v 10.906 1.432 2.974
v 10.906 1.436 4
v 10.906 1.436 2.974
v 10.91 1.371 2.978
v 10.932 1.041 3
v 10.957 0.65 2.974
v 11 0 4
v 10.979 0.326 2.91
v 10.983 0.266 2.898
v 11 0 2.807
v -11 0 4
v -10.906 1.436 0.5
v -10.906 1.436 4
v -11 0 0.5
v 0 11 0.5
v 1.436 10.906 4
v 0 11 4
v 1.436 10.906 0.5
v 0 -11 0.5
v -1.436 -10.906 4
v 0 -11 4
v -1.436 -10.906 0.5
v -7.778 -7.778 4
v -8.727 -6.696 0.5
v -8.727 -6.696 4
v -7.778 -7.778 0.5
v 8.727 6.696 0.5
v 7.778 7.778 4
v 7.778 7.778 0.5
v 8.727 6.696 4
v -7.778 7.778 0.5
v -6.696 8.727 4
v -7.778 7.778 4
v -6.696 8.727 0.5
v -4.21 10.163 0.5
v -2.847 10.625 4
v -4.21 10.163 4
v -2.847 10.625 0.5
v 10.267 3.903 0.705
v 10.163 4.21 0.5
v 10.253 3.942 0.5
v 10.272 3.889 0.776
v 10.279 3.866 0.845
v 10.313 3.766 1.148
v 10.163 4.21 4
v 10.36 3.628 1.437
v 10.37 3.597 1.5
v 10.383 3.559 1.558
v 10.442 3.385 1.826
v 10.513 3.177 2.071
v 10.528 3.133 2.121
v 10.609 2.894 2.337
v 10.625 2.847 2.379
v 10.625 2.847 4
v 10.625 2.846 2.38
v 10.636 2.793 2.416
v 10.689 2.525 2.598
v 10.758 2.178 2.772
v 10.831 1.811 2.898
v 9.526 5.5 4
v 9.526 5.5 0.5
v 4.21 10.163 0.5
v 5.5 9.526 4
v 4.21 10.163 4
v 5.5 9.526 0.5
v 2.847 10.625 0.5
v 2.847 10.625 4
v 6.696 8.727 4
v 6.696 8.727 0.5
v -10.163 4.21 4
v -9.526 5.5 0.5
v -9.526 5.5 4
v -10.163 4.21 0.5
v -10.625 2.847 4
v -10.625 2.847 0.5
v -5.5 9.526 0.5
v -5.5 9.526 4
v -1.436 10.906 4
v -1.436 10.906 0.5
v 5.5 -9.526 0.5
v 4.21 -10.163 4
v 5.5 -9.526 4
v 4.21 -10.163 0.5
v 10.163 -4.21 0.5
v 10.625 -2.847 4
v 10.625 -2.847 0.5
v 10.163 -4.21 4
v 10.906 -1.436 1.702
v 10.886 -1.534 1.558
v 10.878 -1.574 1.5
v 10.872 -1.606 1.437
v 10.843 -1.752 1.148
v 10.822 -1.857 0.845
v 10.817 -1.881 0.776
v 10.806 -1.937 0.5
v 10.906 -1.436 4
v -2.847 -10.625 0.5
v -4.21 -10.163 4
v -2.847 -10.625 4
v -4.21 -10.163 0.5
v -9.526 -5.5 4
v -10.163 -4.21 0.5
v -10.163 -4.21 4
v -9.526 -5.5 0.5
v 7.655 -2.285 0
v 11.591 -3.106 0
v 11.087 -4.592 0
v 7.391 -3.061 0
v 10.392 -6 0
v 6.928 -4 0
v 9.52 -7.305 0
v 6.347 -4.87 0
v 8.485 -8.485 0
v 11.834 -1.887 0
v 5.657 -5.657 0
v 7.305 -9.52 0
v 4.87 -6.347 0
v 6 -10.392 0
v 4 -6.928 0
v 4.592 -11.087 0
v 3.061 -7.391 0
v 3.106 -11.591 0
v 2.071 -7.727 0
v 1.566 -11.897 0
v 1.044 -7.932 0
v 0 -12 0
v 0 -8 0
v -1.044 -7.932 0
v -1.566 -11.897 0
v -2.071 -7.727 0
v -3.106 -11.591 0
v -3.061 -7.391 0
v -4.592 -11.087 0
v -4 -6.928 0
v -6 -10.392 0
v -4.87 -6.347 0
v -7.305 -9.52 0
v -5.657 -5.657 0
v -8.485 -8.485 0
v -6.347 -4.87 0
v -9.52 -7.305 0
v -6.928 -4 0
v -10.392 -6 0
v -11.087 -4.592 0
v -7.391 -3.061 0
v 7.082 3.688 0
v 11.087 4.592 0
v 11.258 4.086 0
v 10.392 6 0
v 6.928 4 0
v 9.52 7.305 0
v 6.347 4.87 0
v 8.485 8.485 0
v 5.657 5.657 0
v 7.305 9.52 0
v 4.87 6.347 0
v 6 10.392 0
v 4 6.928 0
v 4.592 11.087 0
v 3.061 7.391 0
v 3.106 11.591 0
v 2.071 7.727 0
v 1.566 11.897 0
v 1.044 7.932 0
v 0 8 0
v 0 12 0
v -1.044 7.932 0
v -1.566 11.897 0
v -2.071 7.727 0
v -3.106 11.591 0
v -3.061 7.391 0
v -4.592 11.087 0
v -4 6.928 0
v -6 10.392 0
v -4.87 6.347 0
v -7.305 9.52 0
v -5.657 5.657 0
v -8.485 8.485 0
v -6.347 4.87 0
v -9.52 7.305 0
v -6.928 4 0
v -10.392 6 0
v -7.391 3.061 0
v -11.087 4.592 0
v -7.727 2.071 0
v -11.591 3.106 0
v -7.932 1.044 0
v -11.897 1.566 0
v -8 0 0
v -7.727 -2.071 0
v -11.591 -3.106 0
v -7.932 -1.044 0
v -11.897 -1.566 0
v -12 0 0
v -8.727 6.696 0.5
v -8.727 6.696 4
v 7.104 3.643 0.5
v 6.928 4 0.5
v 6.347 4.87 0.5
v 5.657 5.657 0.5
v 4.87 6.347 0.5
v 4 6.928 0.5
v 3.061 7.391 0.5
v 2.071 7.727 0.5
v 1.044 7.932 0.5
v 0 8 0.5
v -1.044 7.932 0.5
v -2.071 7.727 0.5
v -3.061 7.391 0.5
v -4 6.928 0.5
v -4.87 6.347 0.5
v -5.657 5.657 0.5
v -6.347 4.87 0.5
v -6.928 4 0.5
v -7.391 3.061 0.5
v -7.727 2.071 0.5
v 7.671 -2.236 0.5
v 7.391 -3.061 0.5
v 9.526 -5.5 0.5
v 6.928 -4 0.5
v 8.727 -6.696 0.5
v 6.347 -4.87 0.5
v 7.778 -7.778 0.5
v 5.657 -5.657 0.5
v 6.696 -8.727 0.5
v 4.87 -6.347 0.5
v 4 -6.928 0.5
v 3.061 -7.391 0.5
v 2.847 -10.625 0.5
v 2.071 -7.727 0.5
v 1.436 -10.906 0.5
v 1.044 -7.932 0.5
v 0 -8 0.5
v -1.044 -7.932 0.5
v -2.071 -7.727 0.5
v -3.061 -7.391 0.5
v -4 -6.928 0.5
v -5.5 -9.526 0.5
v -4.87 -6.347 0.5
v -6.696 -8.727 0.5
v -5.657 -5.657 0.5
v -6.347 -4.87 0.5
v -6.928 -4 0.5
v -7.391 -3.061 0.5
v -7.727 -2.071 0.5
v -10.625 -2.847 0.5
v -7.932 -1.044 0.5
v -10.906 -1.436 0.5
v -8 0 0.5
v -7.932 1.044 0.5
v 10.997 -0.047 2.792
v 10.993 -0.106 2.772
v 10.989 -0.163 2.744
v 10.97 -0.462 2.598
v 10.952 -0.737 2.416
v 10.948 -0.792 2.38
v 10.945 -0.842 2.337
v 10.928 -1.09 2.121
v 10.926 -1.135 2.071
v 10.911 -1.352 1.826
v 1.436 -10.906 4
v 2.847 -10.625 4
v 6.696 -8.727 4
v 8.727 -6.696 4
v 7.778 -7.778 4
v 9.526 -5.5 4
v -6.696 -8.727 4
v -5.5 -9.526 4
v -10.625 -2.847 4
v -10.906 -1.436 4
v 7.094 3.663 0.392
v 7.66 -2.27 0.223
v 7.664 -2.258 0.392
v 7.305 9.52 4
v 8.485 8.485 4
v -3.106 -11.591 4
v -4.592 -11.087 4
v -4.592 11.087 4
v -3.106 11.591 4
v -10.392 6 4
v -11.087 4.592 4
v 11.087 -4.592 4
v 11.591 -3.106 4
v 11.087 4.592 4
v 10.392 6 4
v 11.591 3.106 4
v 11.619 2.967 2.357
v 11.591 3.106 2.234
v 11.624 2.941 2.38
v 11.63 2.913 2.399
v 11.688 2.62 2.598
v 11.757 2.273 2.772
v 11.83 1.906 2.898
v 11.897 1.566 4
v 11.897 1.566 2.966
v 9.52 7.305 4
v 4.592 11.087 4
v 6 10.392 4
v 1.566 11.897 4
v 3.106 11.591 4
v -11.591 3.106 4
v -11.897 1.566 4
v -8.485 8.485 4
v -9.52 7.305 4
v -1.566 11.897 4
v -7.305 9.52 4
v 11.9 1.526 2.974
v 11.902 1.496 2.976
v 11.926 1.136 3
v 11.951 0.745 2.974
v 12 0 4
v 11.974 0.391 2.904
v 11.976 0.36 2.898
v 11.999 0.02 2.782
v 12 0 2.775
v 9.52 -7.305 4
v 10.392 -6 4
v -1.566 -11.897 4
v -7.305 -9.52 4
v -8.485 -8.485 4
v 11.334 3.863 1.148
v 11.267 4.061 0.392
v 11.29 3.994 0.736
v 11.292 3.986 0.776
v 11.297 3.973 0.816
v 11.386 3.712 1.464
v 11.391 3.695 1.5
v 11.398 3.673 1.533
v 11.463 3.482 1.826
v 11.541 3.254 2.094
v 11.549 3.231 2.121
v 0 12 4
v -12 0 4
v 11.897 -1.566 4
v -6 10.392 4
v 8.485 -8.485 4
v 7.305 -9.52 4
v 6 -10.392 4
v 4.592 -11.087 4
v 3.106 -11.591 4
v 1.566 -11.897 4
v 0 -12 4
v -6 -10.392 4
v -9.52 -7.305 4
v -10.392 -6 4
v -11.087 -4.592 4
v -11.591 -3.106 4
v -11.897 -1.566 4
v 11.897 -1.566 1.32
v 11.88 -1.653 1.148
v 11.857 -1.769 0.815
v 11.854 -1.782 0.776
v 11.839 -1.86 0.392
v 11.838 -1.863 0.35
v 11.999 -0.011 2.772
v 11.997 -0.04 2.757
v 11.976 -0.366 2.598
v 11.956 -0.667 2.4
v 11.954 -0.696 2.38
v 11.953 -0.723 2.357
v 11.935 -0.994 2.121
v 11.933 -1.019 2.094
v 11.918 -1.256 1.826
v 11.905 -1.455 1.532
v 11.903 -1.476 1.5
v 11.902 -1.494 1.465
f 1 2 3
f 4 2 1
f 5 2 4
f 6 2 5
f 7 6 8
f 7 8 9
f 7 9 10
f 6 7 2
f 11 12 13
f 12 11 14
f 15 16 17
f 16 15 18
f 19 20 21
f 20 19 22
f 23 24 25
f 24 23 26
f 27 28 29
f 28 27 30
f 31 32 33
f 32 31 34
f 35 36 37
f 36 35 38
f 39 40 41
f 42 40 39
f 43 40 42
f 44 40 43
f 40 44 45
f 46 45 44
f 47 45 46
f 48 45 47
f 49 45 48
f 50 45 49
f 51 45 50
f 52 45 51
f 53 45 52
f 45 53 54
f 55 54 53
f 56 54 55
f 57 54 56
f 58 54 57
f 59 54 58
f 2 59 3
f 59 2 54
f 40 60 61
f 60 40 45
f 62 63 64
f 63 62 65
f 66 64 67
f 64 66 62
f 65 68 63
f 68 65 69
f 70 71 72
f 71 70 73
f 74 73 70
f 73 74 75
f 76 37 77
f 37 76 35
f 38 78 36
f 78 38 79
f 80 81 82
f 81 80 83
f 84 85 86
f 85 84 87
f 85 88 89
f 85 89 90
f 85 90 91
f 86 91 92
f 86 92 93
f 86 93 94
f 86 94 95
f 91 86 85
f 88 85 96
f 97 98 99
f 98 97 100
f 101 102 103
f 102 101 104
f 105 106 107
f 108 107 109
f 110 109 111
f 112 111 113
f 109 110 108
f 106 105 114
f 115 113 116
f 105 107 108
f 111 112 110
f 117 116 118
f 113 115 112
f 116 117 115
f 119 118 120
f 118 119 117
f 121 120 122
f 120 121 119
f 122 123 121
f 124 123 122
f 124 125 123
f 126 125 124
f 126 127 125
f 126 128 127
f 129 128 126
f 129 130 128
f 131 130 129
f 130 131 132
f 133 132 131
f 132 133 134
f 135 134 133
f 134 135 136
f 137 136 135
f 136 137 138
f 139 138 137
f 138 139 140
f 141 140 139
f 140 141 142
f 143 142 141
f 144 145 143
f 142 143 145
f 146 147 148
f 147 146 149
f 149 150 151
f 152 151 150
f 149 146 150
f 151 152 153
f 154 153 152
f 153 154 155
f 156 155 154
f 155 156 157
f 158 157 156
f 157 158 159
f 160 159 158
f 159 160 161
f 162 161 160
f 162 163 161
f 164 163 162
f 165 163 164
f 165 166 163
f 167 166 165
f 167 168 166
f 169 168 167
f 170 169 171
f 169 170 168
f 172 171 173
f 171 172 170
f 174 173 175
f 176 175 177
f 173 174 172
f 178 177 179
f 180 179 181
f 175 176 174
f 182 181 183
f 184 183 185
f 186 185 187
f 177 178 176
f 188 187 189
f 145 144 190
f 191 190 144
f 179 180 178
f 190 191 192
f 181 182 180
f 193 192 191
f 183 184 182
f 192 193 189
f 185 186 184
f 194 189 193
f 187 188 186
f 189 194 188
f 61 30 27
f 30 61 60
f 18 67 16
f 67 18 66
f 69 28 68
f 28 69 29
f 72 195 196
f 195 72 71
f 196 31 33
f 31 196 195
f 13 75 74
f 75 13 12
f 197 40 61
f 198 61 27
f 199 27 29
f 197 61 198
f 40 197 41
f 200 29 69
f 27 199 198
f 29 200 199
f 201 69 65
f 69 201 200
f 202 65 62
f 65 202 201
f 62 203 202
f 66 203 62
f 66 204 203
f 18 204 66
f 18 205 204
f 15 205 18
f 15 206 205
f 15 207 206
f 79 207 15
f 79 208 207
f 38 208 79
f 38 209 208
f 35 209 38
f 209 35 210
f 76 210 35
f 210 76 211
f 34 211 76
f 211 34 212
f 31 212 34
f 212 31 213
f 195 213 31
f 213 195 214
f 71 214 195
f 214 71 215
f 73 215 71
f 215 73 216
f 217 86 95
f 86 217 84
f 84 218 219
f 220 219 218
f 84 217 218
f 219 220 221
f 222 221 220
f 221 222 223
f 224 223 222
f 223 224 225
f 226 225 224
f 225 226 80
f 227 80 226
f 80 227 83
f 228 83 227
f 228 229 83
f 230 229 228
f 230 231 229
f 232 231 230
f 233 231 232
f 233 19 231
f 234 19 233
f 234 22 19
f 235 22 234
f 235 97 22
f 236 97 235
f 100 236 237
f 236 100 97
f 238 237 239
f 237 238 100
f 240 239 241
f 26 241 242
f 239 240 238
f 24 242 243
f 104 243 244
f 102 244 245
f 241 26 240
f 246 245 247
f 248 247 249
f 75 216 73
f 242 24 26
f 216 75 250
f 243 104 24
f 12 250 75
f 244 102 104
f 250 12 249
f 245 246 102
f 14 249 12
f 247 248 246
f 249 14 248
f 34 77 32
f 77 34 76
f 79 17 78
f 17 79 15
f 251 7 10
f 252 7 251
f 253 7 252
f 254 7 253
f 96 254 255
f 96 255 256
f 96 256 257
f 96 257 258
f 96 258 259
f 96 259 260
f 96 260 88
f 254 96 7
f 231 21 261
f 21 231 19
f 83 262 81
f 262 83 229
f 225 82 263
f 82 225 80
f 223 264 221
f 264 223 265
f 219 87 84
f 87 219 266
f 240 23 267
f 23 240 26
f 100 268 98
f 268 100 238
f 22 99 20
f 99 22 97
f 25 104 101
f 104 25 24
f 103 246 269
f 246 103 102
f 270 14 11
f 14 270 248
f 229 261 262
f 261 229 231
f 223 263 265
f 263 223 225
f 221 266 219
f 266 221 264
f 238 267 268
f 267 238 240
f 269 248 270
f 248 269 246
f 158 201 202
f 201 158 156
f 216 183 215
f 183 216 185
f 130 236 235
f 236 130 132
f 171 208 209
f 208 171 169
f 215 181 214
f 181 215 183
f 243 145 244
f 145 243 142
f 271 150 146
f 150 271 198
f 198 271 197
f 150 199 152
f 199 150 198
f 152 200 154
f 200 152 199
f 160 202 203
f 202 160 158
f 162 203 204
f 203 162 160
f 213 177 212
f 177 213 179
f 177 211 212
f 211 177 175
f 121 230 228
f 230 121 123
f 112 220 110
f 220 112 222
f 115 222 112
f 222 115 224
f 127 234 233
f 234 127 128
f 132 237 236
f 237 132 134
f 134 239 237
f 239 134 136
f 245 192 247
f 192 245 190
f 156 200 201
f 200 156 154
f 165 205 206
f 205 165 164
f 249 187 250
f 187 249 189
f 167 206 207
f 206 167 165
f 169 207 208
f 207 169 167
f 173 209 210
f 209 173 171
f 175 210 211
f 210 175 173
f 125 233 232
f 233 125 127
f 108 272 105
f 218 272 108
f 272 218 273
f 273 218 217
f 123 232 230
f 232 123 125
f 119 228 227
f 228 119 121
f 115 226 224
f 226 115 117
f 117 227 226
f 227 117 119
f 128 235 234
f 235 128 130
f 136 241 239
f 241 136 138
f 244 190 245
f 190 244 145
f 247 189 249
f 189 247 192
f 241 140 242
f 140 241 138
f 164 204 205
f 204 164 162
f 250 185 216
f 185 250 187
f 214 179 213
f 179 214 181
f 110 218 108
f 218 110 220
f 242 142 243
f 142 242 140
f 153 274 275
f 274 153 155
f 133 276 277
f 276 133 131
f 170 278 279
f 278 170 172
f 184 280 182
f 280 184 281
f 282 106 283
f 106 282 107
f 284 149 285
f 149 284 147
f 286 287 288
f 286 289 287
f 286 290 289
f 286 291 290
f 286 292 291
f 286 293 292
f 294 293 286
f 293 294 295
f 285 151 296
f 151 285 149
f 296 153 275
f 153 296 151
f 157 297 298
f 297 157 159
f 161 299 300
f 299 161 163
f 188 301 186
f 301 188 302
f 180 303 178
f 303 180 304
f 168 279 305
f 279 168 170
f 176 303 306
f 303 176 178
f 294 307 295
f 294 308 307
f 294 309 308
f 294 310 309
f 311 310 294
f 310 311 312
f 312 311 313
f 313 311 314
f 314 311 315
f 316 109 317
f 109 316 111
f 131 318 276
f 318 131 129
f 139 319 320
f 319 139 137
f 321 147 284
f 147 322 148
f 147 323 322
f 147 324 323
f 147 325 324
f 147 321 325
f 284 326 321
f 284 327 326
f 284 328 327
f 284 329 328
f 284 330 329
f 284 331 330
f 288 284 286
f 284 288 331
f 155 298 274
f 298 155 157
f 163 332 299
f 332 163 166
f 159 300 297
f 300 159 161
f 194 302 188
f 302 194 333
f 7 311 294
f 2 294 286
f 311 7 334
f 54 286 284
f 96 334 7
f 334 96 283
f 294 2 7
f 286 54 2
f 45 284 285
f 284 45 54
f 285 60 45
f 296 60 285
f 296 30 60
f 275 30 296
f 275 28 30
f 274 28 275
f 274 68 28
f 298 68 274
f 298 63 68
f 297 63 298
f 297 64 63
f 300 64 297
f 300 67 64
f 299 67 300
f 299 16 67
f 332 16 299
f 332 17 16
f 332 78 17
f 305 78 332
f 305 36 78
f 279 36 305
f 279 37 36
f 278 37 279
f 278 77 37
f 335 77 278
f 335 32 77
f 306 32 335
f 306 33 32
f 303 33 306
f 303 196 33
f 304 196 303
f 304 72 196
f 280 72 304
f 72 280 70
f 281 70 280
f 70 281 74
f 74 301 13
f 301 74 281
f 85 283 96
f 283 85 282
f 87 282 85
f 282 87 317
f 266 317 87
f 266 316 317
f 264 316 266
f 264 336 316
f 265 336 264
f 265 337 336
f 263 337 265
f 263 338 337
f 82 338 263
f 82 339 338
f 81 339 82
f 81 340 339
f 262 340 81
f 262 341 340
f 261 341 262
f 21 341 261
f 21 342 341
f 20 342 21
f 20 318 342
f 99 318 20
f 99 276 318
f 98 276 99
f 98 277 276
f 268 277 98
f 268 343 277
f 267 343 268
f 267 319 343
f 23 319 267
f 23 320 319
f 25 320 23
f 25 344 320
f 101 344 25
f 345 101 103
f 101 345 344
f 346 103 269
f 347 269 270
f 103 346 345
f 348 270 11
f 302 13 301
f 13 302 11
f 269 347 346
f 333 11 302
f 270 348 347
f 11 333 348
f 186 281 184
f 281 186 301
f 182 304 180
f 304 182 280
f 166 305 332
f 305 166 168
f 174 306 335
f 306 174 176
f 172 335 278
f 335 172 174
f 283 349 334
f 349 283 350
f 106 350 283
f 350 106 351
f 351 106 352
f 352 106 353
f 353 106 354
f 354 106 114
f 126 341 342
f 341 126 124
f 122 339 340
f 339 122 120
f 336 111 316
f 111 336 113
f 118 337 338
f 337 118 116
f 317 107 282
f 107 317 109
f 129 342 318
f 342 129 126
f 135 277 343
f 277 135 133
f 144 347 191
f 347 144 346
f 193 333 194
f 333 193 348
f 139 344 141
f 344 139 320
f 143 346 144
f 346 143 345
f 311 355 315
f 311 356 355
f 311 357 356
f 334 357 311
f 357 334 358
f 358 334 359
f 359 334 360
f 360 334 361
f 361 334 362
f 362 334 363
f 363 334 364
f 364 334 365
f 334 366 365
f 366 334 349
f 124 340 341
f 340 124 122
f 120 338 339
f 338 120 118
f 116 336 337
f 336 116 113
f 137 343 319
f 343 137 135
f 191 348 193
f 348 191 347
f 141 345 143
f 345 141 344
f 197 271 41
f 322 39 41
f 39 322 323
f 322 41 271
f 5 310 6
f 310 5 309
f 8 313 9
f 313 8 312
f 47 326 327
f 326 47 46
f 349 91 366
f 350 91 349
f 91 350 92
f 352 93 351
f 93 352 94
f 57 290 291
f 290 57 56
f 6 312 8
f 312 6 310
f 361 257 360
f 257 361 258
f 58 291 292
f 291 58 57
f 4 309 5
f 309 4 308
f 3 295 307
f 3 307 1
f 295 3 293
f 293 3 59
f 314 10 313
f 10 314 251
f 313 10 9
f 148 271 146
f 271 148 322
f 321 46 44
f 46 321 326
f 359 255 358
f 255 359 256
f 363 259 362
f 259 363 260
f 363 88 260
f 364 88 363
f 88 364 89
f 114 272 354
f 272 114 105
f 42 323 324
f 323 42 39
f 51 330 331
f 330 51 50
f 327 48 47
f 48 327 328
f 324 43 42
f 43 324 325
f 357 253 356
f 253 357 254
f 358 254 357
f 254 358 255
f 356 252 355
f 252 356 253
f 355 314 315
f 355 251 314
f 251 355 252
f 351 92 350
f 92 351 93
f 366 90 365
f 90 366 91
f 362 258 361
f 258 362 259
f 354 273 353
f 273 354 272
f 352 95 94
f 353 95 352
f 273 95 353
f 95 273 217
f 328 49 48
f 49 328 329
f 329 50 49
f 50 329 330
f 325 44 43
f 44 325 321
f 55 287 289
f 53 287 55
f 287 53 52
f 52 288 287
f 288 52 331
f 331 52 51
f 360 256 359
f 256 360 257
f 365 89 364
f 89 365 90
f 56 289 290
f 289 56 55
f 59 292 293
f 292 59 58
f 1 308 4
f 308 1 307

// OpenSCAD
// file: ../build_environments.scad
// build_environments.scad: modules to build level sections
//

module pool(diameter=10.0, wall_height=2.0, step_width=3.0, connections=[])
{
    difference() {
        union() {
        difference() {
            cylinder(h=0.5,r1=diameter+step_width,r2=diameter+step_width,$fn=48);
            translate([0,0,-0.1])
                cylinder(h=0.7,r1=diameter,r2=diameter,$fn=48);
        }
        difference() {
            cylinder(h=wall_height,r1=diameter+step_width+1.0,r2=diameter+step_width+1.0,$fn=48);
            translate([0,0,-0.1])
                cylinder(h=wall_height+0.2,r1=diameter+step_width,r2=diameter+step_width,$fn=48);
        }
        }
    
        for (c = connections)
        {
            rotate([0,90,0]) {
                angle = atan2(c[1],c[0]);
                rotate([-angle,0,0]) {
                    cylinder(h=diameter+5.0,r1=c[2],r2=c[2],$fn=48);
                }
            }
        }
    }
}

module straight(length=10.0, width=2.0, dy1=0.0, dy2=0.0, dz=0.0)
{
    dims = [0, 0, 0, 0, 0, (dz/length)];
    matrix = [
        [ 1, dims[0], dims[1], 0 ],
        [ dims[2], 1, dims[4], 0 ],
        [ dims[5], dims[3], 1, 0 ],
        [ 0, 0, 0, 1 ]
    ];
    multmatrix(matrix)
    difference() {
        translate([dy1,0,0])
        union() {
            rotate([0,90,0]) {
                difference() {
                    cylinder(h=(length-dy1-dy2),r1=width+1.0,r2=width+1.0,$fn=24);
                    translate([0,0,-0.1])
                        cylinder(h=(length-dy1-dy2+0.2),r1=width,r2=width,$fn=24);
                }
                difference() {
                    cylinder(h=1.0,r1=width+2.0,r2=width+2.0,$fn=24);
                    translate([0,0,-0.1])
                        cylinder(h=1.2,r1=width,r2=width,$fn=24);
                }
                translate([0,0,(length-dy1-dy2)-1.0]) {
                    difference() {
                        cylinder(h=1.0,r1=width+2.0,r2=width+2.0,$fn=24);
                        translate([0,0,-0.1])
                            cylinder(h=1.2,r1=width,r2=width,$fn=24);
                    }
                }
            }
        }
        translate([0,0,-(2*width+4.0)/2])
            cube([3*length,3*length,2*width+4.0],center=true);
    }
}

module curve(p0=[0,0], center=[0,0], dir=1, angle=0.0, width=2.0)
{
    radius = sqrt((p0[0]-center[0])*(p0[0]-center[0]) + (p0[1]-center[1])*(p0[1]-center[1]));
    if (dir == 0) {
        difference() {
            rotate([0,0,-90])
            difference() {
                rotate_extrude(angle = angle, convexity = 10, $fn=32)
                    translate([radius, 0, 0])
                        circle(r = width+1.0,$fn=24);
                rotate([0,0,-1.0])
                    rotate_extrude(angle = angle+2.0, convexity = 10, $fn=32)
                        translate([radius, 0, 0])
                            circle(r = width,$fn=24);
            }
            translate([0,0,-(2*width+4.0)/2])
                cube([5*radius,5*radius,2*width+4.0],center=true);
        }
    }
    else {
        difference() {
            rotate([0,0,90])
            difference() {
                rotate_extrude(angle = -angle, convexity = 10, $fn=32)
                    translate([radius, 0, 0])
                        circle(r = width+1.0,$fn=24);
                rotate([0,0,1.0])
                    rotate_extrude(angle = -angle-2.0, convexity = 10, $fn=32)
                        translate([radius, 0, 0])
                            circle(r = width,$fn=24);
            }
            translate([0,0,-(2*width+4.0)/2])
                cube([5*radius,5*radius,2*width+4.0],center=true);
        }
    }

}

// test pool
//pool(diameter=12.0000, wall_height=3.0000, step_width=3.0000, connections=[[0.0000,-26.0000,2.0000], [23.6074,0.0000,2.0000]]);

// test straight, slope
//straight(length=26.0000, width=2.0000, dy1=11.8322, dy2=6.7082, dz=0.0000);
//straight(length=29.1549, width=12.0000, dy1=0.0000, dy2=0.0000, dz=-15.0000);

// test curve
//curve(p0=[23.6074, 0.0000], center=[23.6074, 5.0000], dir=0, angle=60.1011, width=2.0000);
//curve(p0=[33.6426, 12.4219], center=[37.9771, 9.9295], dir=1, angle=120.4627, width=2.0000);
// main file
use <../build_environments.scad>;
pool(diameter=8.0000, wall_height=4.0000, step_width=3.0000, connections=[[8.8878,0.8463,3.0000]]);
